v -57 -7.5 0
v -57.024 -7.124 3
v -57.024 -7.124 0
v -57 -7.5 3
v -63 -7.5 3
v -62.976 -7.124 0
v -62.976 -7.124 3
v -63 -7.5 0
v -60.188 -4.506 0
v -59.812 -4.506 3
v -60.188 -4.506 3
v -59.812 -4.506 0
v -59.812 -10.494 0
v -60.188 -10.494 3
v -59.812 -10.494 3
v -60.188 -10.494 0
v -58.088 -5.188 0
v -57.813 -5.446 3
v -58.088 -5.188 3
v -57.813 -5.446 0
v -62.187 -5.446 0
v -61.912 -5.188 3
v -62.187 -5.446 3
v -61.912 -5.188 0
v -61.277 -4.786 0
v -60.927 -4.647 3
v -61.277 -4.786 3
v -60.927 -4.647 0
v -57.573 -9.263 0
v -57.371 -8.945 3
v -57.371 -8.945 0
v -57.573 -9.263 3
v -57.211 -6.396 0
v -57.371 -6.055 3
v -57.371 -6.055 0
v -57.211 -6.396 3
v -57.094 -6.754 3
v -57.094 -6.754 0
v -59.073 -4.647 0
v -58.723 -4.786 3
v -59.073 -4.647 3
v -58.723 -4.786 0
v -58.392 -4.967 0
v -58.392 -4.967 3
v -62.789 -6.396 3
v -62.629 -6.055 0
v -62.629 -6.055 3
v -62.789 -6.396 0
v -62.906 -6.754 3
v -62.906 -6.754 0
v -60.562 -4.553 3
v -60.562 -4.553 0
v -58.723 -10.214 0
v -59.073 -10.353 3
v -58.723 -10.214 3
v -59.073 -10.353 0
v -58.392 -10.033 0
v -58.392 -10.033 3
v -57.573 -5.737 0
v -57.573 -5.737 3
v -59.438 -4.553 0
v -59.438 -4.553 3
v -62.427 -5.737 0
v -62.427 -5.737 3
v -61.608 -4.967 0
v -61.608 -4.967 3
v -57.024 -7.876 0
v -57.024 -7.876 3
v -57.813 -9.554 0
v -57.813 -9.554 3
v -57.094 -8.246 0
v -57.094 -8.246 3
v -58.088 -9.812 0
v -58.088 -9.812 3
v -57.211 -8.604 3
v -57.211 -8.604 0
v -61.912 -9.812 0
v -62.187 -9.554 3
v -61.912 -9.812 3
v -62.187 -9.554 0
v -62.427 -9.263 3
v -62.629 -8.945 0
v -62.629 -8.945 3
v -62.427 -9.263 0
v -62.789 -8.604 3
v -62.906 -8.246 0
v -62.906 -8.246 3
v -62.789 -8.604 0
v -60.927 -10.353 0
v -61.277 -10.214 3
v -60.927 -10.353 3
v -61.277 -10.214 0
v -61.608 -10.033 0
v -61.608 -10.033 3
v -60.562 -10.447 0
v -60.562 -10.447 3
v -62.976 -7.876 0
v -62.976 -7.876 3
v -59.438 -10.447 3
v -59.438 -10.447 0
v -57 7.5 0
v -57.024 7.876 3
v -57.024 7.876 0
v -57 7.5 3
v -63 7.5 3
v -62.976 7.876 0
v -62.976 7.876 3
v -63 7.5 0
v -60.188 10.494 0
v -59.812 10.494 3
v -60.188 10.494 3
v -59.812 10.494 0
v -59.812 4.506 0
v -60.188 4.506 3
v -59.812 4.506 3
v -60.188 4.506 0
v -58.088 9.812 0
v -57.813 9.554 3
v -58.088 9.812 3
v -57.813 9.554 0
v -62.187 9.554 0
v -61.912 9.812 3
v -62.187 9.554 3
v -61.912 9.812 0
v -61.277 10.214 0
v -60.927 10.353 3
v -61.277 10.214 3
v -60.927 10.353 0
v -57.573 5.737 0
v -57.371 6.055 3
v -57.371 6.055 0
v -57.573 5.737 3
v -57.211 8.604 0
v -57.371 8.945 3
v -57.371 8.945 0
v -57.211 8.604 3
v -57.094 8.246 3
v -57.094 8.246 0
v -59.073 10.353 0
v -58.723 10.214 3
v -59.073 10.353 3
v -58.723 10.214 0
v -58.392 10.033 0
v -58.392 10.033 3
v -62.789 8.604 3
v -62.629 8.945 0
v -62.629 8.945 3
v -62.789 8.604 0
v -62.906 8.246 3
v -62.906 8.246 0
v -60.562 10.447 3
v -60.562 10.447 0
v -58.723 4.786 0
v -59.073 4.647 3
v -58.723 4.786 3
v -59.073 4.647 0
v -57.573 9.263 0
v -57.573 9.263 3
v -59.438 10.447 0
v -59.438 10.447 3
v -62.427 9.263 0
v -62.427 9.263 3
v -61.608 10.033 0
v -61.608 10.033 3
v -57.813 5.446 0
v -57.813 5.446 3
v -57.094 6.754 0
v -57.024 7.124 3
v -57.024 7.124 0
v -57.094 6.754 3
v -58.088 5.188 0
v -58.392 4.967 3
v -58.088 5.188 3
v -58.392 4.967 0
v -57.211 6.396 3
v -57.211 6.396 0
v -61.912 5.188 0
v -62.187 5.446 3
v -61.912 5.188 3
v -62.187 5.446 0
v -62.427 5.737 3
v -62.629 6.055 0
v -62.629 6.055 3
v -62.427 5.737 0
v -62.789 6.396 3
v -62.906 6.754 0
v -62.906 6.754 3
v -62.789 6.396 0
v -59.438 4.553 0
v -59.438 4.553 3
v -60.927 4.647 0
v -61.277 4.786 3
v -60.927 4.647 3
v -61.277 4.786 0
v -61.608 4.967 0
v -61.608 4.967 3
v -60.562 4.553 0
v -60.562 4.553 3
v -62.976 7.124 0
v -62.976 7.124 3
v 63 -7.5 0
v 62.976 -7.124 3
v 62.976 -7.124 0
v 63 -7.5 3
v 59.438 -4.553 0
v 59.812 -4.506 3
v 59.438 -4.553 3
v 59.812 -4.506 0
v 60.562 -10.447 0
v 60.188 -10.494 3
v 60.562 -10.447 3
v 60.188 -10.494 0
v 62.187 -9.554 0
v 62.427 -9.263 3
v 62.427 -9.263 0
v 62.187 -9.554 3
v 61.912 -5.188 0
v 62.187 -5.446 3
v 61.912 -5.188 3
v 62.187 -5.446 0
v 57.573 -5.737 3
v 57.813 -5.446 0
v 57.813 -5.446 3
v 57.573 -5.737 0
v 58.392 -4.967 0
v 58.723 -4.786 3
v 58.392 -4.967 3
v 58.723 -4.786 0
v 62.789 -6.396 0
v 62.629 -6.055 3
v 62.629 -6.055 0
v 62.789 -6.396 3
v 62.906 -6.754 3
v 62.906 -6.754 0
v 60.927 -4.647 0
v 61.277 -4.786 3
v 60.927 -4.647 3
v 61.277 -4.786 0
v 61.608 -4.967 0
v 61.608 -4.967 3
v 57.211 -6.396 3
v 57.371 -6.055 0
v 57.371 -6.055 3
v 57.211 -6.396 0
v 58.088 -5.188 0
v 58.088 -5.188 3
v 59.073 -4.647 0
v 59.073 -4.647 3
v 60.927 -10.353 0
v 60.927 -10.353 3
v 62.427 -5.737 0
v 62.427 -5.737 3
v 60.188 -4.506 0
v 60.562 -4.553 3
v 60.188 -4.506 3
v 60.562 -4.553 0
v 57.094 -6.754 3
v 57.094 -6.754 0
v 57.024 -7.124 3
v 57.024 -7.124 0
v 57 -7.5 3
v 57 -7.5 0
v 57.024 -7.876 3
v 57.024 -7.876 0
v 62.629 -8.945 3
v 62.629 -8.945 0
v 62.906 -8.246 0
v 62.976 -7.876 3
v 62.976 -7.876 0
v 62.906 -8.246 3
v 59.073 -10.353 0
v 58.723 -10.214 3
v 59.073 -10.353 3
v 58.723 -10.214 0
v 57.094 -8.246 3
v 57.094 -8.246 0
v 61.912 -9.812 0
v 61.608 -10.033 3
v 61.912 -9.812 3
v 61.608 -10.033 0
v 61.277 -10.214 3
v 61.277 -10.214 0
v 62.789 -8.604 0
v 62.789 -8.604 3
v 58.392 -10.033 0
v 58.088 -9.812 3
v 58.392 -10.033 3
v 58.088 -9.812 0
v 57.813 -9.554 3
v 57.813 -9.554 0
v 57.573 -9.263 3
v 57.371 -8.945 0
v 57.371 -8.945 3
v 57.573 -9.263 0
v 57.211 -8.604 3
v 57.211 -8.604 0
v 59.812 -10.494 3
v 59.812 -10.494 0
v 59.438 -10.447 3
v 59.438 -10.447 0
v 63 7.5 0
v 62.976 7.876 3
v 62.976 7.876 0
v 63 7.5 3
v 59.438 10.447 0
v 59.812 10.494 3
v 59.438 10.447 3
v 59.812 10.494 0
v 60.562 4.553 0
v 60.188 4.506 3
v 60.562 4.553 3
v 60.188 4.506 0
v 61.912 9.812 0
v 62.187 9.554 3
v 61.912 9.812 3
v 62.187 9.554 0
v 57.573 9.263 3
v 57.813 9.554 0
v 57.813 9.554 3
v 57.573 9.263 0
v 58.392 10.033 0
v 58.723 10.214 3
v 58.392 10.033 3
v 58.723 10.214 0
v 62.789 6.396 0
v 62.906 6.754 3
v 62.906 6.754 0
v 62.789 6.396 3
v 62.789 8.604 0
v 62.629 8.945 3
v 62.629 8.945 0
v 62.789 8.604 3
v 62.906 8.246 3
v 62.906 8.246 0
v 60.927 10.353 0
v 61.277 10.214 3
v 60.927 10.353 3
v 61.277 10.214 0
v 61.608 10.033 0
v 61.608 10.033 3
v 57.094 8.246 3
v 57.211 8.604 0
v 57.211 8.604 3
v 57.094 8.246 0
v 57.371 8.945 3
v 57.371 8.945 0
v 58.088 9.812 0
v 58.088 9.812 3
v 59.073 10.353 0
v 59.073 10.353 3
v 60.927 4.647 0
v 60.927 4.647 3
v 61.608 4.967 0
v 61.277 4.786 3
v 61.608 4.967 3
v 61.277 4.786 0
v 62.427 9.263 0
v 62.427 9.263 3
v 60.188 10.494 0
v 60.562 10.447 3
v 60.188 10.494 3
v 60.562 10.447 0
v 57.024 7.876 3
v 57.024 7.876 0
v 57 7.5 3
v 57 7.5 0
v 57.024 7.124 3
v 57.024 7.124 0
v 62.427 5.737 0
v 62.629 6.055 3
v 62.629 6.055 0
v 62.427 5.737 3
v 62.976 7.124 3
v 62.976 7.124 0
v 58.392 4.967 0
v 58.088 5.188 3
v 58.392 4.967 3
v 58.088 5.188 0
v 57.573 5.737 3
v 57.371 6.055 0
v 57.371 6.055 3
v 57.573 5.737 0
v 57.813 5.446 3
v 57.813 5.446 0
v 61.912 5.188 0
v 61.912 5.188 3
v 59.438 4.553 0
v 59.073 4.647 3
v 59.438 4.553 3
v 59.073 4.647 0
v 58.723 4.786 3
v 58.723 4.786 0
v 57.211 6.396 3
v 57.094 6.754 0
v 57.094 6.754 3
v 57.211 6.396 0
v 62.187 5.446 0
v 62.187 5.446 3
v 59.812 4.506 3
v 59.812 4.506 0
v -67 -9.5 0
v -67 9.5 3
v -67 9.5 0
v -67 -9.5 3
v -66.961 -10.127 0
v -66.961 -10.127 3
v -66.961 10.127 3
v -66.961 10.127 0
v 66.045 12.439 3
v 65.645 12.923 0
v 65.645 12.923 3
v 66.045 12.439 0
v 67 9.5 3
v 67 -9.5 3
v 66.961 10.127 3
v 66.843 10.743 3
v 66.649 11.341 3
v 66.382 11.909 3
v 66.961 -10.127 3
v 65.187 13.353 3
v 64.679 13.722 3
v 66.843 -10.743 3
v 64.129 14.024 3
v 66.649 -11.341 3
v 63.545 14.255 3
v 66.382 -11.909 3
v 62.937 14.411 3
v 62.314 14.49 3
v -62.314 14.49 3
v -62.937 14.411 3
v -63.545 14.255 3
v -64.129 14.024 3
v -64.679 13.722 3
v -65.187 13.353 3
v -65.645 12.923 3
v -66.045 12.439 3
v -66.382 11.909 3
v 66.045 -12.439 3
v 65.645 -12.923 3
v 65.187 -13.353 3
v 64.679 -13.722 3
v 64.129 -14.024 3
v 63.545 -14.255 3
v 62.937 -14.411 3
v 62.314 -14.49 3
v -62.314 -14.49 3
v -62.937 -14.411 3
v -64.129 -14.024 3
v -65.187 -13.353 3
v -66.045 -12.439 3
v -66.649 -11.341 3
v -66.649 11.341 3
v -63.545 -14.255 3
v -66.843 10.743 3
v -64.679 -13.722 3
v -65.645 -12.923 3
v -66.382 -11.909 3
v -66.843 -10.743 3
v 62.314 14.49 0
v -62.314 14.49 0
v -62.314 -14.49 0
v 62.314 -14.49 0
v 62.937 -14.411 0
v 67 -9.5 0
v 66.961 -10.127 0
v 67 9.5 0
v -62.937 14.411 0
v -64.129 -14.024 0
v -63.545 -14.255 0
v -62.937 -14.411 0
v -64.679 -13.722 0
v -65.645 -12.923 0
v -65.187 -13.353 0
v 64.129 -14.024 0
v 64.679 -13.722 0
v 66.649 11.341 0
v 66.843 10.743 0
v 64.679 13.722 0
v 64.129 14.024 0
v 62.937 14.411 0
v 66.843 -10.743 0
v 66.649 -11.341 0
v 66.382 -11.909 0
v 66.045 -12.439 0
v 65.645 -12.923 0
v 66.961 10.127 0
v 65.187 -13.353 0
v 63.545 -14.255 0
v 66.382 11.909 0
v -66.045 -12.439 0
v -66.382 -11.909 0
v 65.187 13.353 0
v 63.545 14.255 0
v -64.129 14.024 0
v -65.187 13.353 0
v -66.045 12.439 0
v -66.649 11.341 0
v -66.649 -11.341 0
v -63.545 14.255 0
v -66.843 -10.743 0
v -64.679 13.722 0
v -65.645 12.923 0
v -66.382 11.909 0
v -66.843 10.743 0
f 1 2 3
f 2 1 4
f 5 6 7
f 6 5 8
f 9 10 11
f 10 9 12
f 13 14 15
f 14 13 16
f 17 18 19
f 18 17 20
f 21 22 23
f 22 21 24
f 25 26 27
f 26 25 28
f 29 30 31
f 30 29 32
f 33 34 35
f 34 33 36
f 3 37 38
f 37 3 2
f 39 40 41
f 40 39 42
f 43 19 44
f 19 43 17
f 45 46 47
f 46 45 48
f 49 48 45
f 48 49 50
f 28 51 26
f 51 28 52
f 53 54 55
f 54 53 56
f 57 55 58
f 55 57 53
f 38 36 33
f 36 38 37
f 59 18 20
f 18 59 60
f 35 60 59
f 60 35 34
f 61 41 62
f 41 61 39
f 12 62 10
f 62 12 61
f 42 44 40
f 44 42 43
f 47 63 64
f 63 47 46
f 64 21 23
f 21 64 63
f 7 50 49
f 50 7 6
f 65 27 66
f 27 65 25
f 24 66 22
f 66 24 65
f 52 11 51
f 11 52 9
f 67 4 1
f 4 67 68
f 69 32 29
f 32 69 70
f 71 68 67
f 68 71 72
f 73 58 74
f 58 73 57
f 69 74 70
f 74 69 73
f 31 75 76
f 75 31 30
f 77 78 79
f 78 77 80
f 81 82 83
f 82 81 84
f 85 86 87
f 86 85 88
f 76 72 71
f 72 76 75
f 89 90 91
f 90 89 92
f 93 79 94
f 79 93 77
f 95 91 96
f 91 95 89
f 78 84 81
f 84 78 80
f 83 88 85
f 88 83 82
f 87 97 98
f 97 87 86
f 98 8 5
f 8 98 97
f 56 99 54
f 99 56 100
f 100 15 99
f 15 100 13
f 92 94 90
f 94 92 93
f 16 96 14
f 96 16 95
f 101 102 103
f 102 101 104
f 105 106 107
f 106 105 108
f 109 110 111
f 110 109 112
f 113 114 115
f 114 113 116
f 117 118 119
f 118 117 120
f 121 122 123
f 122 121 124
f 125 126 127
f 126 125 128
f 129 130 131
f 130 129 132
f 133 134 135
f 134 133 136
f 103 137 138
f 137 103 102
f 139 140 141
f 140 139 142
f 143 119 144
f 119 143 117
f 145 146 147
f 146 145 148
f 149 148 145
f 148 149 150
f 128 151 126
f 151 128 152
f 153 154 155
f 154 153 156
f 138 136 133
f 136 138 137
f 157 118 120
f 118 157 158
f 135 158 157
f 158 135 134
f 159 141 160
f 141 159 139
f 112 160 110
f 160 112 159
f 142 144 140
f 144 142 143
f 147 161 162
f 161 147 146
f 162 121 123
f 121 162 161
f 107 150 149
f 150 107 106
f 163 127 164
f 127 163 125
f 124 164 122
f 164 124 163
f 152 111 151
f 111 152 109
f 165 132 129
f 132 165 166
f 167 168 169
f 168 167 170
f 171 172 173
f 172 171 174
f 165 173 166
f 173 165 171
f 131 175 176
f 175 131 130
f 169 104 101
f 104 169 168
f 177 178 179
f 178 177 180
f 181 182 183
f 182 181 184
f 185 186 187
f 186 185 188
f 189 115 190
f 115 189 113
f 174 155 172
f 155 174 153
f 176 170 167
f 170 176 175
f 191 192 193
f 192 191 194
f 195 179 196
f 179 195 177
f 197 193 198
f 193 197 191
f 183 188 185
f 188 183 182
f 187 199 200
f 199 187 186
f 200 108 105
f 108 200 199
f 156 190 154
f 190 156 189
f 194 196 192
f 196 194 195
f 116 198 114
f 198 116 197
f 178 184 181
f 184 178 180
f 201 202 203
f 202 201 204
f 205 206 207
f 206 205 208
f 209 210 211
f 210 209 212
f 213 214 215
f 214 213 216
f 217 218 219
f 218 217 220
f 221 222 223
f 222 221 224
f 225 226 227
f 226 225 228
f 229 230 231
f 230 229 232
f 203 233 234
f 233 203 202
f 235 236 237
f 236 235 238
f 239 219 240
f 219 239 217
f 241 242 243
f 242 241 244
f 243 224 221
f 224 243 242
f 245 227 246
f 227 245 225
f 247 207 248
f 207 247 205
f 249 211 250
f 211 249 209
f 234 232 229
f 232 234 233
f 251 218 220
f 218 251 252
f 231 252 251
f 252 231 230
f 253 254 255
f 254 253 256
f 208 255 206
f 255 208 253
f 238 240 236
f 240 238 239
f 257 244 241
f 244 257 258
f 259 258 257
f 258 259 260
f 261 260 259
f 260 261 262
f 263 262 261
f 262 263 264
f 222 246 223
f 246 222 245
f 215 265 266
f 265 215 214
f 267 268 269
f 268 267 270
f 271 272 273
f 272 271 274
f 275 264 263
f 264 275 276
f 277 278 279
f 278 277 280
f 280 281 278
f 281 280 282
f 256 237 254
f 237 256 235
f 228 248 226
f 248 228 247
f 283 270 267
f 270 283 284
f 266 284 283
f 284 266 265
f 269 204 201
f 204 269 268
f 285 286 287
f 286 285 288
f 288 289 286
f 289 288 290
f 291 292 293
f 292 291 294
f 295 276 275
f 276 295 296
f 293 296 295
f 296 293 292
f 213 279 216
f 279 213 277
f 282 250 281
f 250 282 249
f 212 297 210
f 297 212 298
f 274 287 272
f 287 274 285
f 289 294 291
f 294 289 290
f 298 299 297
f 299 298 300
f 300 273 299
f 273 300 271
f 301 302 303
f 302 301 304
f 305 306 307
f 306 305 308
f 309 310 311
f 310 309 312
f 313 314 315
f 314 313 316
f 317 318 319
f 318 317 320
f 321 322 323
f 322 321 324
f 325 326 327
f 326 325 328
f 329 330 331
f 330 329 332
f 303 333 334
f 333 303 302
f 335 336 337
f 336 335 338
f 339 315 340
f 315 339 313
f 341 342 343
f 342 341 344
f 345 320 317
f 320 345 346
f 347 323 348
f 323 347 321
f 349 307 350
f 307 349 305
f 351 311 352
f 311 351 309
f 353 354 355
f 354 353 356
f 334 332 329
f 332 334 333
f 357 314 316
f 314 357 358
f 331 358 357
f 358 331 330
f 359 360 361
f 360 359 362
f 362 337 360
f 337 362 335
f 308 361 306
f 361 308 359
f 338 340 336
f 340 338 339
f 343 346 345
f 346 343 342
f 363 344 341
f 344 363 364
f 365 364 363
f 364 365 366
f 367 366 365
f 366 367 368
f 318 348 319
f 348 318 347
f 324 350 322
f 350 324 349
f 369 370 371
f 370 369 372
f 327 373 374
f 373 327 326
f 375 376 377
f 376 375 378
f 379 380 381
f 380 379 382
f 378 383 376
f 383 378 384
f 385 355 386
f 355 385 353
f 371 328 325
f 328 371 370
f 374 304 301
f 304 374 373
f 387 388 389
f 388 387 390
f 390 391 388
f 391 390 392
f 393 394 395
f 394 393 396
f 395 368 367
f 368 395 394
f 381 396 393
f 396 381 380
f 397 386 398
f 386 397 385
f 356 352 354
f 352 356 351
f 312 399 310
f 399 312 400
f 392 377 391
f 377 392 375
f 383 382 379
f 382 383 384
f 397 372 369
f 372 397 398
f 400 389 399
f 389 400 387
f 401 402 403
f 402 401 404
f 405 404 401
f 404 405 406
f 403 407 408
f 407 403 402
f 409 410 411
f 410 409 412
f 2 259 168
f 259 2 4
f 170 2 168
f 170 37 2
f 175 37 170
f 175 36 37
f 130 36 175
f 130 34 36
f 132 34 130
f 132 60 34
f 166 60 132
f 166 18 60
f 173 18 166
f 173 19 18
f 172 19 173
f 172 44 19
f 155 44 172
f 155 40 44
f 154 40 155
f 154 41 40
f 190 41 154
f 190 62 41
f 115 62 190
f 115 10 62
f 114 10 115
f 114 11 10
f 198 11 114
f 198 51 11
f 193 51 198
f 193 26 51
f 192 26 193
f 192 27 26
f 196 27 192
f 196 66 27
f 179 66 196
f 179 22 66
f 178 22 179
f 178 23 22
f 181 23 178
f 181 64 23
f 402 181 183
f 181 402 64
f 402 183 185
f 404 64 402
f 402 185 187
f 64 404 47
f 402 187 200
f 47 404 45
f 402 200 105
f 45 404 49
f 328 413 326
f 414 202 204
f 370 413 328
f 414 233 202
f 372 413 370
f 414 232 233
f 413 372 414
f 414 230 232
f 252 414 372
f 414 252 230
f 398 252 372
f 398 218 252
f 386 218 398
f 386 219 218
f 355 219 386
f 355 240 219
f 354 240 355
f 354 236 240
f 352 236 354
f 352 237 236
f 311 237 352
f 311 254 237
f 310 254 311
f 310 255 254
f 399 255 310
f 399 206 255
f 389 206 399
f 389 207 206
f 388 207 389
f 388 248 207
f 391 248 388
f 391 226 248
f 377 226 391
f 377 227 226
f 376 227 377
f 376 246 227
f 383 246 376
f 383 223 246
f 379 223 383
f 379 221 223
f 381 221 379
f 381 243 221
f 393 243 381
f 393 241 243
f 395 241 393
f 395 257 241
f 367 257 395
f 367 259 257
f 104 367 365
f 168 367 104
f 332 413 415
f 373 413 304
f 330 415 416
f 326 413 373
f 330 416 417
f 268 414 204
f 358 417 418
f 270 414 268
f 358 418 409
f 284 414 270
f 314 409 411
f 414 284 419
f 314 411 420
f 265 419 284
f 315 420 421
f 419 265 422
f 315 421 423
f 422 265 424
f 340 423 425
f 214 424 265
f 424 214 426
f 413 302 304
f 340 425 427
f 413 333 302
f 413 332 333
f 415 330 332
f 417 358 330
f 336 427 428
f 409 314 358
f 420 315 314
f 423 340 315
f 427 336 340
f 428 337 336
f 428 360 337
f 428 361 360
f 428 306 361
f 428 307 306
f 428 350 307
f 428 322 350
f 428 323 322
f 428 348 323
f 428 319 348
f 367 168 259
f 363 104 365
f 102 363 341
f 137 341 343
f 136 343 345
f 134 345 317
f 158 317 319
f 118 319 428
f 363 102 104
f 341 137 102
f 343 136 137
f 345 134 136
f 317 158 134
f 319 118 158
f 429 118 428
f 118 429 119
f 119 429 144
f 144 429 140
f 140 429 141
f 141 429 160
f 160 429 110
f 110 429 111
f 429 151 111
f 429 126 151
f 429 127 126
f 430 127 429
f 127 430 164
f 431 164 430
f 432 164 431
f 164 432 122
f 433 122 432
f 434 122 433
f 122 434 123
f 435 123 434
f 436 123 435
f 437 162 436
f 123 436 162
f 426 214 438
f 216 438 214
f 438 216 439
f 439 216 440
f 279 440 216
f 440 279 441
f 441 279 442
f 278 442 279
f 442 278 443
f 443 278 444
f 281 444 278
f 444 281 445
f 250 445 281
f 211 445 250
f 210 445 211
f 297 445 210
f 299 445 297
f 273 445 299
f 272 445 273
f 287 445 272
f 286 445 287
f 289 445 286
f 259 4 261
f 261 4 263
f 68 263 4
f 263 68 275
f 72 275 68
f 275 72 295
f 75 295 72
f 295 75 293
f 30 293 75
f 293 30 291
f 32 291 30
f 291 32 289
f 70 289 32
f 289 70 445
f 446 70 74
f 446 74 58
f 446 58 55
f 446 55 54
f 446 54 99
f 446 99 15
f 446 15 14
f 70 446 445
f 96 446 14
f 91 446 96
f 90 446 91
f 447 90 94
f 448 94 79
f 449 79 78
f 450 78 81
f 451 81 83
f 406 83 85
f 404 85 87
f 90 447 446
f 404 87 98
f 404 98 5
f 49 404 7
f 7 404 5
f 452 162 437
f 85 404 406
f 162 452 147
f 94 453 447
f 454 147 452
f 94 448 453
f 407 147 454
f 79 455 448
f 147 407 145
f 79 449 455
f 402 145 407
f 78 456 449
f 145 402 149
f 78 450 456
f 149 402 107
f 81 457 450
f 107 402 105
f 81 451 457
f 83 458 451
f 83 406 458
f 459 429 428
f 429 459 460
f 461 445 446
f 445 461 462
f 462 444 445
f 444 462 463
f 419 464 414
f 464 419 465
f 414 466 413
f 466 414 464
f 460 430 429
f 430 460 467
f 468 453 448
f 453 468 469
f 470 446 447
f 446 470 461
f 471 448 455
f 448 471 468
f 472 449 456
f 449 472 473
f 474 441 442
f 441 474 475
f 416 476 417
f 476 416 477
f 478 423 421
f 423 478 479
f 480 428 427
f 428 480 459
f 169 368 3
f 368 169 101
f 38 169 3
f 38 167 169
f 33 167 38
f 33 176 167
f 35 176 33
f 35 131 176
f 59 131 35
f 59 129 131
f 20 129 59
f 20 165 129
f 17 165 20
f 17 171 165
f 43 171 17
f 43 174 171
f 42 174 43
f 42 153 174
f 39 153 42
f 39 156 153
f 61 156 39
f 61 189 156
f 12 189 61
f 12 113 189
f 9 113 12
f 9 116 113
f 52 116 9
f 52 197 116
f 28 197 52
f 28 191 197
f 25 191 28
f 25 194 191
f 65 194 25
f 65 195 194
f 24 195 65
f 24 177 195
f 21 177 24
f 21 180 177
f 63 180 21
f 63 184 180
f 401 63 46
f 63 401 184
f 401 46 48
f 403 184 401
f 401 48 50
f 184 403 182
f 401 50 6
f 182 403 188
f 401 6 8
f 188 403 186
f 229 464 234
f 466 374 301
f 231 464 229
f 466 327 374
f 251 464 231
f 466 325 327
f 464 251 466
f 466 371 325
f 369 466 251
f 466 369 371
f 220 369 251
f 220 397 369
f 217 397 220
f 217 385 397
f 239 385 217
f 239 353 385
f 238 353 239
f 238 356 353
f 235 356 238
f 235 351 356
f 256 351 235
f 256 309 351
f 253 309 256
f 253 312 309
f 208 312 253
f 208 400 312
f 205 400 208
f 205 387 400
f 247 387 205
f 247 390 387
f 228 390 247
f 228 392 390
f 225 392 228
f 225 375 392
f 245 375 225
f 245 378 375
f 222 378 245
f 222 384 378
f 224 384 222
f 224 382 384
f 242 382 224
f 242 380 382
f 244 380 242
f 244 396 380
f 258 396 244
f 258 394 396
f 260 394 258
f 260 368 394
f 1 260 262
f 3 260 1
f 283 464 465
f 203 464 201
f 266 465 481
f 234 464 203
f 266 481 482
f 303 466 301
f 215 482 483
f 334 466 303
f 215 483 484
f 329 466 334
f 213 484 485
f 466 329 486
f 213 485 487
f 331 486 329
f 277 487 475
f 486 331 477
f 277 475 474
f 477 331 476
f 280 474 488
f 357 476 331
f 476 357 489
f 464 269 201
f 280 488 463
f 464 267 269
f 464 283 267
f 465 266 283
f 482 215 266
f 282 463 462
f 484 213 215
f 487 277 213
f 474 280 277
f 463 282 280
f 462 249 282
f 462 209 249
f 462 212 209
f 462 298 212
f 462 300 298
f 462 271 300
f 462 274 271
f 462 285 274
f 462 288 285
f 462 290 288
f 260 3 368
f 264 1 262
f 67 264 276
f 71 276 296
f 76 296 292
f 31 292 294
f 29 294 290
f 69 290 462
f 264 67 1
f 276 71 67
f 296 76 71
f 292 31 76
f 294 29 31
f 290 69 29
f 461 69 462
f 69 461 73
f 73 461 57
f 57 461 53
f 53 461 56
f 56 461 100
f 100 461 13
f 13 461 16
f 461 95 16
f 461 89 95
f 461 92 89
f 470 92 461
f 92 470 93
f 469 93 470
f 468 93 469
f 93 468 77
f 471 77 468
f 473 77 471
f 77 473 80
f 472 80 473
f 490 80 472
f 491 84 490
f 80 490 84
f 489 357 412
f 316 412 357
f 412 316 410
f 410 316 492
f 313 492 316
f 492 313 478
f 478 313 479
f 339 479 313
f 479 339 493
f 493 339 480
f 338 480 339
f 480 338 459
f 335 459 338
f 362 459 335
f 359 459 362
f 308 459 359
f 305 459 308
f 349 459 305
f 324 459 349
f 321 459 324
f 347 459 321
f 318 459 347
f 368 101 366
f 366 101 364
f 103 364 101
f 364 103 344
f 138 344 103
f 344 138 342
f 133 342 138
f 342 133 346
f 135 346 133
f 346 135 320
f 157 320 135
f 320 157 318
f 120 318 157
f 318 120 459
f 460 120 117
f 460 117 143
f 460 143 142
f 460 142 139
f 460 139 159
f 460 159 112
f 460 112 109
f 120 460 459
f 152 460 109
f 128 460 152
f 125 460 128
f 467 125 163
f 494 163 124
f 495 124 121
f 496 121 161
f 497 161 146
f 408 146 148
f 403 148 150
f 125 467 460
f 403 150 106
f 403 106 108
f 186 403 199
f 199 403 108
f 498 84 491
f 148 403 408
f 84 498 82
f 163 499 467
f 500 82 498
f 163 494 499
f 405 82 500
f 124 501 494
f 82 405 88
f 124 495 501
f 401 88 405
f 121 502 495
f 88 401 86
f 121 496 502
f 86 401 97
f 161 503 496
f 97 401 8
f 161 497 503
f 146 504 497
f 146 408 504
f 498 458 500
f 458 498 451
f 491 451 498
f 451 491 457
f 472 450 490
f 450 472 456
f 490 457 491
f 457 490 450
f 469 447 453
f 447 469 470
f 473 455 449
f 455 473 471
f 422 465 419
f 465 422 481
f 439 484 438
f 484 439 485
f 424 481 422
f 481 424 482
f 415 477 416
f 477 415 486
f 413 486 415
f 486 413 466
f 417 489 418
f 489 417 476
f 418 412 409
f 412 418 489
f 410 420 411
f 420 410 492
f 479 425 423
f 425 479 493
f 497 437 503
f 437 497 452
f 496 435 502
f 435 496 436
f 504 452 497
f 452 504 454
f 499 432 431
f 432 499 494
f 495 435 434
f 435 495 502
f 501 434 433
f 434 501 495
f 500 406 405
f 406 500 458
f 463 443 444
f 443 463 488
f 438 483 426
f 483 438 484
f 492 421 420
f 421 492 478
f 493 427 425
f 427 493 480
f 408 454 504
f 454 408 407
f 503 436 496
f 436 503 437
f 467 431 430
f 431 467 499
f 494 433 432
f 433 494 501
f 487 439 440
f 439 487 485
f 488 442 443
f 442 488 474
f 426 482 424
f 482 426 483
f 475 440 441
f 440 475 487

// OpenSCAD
$fn = 50;


difference() {
	union() {
		hull() {
			translate(v = [-62.0000000000, 9.5000000000, 0]) {
				cylinder(h = 3, r = 5);
			}
			translate(v = [62.0000000000, 9.5000000000, 0]) {
				cylinder(h = 3, r = 5);
			}
			translate(v = [-62.0000000000, -9.5000000000, 0]) {
				cylinder(h = 3, r = 5);
			}
			translate(v = [62.0000000000, -9.5000000000, 0]) {
				cylinder(h = 3, r = 5);
			}
		}
	}
	union() {
		translate(v = [-60.0000000000, -7.5000000000, -100.0000000000]) {
			cylinder(h = 200, r = 3.0000000000);
		}
		translate(v = [-60.0000000000, 7.5000000000, -100.0000000000]) {
			cylinder(h = 200, r = 3.0000000000);
		}
		translate(v = [60.0000000000, -7.5000000000, -100.0000000000]) {
			cylinder(h = 200, r = 3.0000000000);
		}
		translate(v = [60.0000000000, 7.5000000000, -100.0000000000]) {
			cylinder(h = 200, r = 3.0000000000);
		}
	}
}
